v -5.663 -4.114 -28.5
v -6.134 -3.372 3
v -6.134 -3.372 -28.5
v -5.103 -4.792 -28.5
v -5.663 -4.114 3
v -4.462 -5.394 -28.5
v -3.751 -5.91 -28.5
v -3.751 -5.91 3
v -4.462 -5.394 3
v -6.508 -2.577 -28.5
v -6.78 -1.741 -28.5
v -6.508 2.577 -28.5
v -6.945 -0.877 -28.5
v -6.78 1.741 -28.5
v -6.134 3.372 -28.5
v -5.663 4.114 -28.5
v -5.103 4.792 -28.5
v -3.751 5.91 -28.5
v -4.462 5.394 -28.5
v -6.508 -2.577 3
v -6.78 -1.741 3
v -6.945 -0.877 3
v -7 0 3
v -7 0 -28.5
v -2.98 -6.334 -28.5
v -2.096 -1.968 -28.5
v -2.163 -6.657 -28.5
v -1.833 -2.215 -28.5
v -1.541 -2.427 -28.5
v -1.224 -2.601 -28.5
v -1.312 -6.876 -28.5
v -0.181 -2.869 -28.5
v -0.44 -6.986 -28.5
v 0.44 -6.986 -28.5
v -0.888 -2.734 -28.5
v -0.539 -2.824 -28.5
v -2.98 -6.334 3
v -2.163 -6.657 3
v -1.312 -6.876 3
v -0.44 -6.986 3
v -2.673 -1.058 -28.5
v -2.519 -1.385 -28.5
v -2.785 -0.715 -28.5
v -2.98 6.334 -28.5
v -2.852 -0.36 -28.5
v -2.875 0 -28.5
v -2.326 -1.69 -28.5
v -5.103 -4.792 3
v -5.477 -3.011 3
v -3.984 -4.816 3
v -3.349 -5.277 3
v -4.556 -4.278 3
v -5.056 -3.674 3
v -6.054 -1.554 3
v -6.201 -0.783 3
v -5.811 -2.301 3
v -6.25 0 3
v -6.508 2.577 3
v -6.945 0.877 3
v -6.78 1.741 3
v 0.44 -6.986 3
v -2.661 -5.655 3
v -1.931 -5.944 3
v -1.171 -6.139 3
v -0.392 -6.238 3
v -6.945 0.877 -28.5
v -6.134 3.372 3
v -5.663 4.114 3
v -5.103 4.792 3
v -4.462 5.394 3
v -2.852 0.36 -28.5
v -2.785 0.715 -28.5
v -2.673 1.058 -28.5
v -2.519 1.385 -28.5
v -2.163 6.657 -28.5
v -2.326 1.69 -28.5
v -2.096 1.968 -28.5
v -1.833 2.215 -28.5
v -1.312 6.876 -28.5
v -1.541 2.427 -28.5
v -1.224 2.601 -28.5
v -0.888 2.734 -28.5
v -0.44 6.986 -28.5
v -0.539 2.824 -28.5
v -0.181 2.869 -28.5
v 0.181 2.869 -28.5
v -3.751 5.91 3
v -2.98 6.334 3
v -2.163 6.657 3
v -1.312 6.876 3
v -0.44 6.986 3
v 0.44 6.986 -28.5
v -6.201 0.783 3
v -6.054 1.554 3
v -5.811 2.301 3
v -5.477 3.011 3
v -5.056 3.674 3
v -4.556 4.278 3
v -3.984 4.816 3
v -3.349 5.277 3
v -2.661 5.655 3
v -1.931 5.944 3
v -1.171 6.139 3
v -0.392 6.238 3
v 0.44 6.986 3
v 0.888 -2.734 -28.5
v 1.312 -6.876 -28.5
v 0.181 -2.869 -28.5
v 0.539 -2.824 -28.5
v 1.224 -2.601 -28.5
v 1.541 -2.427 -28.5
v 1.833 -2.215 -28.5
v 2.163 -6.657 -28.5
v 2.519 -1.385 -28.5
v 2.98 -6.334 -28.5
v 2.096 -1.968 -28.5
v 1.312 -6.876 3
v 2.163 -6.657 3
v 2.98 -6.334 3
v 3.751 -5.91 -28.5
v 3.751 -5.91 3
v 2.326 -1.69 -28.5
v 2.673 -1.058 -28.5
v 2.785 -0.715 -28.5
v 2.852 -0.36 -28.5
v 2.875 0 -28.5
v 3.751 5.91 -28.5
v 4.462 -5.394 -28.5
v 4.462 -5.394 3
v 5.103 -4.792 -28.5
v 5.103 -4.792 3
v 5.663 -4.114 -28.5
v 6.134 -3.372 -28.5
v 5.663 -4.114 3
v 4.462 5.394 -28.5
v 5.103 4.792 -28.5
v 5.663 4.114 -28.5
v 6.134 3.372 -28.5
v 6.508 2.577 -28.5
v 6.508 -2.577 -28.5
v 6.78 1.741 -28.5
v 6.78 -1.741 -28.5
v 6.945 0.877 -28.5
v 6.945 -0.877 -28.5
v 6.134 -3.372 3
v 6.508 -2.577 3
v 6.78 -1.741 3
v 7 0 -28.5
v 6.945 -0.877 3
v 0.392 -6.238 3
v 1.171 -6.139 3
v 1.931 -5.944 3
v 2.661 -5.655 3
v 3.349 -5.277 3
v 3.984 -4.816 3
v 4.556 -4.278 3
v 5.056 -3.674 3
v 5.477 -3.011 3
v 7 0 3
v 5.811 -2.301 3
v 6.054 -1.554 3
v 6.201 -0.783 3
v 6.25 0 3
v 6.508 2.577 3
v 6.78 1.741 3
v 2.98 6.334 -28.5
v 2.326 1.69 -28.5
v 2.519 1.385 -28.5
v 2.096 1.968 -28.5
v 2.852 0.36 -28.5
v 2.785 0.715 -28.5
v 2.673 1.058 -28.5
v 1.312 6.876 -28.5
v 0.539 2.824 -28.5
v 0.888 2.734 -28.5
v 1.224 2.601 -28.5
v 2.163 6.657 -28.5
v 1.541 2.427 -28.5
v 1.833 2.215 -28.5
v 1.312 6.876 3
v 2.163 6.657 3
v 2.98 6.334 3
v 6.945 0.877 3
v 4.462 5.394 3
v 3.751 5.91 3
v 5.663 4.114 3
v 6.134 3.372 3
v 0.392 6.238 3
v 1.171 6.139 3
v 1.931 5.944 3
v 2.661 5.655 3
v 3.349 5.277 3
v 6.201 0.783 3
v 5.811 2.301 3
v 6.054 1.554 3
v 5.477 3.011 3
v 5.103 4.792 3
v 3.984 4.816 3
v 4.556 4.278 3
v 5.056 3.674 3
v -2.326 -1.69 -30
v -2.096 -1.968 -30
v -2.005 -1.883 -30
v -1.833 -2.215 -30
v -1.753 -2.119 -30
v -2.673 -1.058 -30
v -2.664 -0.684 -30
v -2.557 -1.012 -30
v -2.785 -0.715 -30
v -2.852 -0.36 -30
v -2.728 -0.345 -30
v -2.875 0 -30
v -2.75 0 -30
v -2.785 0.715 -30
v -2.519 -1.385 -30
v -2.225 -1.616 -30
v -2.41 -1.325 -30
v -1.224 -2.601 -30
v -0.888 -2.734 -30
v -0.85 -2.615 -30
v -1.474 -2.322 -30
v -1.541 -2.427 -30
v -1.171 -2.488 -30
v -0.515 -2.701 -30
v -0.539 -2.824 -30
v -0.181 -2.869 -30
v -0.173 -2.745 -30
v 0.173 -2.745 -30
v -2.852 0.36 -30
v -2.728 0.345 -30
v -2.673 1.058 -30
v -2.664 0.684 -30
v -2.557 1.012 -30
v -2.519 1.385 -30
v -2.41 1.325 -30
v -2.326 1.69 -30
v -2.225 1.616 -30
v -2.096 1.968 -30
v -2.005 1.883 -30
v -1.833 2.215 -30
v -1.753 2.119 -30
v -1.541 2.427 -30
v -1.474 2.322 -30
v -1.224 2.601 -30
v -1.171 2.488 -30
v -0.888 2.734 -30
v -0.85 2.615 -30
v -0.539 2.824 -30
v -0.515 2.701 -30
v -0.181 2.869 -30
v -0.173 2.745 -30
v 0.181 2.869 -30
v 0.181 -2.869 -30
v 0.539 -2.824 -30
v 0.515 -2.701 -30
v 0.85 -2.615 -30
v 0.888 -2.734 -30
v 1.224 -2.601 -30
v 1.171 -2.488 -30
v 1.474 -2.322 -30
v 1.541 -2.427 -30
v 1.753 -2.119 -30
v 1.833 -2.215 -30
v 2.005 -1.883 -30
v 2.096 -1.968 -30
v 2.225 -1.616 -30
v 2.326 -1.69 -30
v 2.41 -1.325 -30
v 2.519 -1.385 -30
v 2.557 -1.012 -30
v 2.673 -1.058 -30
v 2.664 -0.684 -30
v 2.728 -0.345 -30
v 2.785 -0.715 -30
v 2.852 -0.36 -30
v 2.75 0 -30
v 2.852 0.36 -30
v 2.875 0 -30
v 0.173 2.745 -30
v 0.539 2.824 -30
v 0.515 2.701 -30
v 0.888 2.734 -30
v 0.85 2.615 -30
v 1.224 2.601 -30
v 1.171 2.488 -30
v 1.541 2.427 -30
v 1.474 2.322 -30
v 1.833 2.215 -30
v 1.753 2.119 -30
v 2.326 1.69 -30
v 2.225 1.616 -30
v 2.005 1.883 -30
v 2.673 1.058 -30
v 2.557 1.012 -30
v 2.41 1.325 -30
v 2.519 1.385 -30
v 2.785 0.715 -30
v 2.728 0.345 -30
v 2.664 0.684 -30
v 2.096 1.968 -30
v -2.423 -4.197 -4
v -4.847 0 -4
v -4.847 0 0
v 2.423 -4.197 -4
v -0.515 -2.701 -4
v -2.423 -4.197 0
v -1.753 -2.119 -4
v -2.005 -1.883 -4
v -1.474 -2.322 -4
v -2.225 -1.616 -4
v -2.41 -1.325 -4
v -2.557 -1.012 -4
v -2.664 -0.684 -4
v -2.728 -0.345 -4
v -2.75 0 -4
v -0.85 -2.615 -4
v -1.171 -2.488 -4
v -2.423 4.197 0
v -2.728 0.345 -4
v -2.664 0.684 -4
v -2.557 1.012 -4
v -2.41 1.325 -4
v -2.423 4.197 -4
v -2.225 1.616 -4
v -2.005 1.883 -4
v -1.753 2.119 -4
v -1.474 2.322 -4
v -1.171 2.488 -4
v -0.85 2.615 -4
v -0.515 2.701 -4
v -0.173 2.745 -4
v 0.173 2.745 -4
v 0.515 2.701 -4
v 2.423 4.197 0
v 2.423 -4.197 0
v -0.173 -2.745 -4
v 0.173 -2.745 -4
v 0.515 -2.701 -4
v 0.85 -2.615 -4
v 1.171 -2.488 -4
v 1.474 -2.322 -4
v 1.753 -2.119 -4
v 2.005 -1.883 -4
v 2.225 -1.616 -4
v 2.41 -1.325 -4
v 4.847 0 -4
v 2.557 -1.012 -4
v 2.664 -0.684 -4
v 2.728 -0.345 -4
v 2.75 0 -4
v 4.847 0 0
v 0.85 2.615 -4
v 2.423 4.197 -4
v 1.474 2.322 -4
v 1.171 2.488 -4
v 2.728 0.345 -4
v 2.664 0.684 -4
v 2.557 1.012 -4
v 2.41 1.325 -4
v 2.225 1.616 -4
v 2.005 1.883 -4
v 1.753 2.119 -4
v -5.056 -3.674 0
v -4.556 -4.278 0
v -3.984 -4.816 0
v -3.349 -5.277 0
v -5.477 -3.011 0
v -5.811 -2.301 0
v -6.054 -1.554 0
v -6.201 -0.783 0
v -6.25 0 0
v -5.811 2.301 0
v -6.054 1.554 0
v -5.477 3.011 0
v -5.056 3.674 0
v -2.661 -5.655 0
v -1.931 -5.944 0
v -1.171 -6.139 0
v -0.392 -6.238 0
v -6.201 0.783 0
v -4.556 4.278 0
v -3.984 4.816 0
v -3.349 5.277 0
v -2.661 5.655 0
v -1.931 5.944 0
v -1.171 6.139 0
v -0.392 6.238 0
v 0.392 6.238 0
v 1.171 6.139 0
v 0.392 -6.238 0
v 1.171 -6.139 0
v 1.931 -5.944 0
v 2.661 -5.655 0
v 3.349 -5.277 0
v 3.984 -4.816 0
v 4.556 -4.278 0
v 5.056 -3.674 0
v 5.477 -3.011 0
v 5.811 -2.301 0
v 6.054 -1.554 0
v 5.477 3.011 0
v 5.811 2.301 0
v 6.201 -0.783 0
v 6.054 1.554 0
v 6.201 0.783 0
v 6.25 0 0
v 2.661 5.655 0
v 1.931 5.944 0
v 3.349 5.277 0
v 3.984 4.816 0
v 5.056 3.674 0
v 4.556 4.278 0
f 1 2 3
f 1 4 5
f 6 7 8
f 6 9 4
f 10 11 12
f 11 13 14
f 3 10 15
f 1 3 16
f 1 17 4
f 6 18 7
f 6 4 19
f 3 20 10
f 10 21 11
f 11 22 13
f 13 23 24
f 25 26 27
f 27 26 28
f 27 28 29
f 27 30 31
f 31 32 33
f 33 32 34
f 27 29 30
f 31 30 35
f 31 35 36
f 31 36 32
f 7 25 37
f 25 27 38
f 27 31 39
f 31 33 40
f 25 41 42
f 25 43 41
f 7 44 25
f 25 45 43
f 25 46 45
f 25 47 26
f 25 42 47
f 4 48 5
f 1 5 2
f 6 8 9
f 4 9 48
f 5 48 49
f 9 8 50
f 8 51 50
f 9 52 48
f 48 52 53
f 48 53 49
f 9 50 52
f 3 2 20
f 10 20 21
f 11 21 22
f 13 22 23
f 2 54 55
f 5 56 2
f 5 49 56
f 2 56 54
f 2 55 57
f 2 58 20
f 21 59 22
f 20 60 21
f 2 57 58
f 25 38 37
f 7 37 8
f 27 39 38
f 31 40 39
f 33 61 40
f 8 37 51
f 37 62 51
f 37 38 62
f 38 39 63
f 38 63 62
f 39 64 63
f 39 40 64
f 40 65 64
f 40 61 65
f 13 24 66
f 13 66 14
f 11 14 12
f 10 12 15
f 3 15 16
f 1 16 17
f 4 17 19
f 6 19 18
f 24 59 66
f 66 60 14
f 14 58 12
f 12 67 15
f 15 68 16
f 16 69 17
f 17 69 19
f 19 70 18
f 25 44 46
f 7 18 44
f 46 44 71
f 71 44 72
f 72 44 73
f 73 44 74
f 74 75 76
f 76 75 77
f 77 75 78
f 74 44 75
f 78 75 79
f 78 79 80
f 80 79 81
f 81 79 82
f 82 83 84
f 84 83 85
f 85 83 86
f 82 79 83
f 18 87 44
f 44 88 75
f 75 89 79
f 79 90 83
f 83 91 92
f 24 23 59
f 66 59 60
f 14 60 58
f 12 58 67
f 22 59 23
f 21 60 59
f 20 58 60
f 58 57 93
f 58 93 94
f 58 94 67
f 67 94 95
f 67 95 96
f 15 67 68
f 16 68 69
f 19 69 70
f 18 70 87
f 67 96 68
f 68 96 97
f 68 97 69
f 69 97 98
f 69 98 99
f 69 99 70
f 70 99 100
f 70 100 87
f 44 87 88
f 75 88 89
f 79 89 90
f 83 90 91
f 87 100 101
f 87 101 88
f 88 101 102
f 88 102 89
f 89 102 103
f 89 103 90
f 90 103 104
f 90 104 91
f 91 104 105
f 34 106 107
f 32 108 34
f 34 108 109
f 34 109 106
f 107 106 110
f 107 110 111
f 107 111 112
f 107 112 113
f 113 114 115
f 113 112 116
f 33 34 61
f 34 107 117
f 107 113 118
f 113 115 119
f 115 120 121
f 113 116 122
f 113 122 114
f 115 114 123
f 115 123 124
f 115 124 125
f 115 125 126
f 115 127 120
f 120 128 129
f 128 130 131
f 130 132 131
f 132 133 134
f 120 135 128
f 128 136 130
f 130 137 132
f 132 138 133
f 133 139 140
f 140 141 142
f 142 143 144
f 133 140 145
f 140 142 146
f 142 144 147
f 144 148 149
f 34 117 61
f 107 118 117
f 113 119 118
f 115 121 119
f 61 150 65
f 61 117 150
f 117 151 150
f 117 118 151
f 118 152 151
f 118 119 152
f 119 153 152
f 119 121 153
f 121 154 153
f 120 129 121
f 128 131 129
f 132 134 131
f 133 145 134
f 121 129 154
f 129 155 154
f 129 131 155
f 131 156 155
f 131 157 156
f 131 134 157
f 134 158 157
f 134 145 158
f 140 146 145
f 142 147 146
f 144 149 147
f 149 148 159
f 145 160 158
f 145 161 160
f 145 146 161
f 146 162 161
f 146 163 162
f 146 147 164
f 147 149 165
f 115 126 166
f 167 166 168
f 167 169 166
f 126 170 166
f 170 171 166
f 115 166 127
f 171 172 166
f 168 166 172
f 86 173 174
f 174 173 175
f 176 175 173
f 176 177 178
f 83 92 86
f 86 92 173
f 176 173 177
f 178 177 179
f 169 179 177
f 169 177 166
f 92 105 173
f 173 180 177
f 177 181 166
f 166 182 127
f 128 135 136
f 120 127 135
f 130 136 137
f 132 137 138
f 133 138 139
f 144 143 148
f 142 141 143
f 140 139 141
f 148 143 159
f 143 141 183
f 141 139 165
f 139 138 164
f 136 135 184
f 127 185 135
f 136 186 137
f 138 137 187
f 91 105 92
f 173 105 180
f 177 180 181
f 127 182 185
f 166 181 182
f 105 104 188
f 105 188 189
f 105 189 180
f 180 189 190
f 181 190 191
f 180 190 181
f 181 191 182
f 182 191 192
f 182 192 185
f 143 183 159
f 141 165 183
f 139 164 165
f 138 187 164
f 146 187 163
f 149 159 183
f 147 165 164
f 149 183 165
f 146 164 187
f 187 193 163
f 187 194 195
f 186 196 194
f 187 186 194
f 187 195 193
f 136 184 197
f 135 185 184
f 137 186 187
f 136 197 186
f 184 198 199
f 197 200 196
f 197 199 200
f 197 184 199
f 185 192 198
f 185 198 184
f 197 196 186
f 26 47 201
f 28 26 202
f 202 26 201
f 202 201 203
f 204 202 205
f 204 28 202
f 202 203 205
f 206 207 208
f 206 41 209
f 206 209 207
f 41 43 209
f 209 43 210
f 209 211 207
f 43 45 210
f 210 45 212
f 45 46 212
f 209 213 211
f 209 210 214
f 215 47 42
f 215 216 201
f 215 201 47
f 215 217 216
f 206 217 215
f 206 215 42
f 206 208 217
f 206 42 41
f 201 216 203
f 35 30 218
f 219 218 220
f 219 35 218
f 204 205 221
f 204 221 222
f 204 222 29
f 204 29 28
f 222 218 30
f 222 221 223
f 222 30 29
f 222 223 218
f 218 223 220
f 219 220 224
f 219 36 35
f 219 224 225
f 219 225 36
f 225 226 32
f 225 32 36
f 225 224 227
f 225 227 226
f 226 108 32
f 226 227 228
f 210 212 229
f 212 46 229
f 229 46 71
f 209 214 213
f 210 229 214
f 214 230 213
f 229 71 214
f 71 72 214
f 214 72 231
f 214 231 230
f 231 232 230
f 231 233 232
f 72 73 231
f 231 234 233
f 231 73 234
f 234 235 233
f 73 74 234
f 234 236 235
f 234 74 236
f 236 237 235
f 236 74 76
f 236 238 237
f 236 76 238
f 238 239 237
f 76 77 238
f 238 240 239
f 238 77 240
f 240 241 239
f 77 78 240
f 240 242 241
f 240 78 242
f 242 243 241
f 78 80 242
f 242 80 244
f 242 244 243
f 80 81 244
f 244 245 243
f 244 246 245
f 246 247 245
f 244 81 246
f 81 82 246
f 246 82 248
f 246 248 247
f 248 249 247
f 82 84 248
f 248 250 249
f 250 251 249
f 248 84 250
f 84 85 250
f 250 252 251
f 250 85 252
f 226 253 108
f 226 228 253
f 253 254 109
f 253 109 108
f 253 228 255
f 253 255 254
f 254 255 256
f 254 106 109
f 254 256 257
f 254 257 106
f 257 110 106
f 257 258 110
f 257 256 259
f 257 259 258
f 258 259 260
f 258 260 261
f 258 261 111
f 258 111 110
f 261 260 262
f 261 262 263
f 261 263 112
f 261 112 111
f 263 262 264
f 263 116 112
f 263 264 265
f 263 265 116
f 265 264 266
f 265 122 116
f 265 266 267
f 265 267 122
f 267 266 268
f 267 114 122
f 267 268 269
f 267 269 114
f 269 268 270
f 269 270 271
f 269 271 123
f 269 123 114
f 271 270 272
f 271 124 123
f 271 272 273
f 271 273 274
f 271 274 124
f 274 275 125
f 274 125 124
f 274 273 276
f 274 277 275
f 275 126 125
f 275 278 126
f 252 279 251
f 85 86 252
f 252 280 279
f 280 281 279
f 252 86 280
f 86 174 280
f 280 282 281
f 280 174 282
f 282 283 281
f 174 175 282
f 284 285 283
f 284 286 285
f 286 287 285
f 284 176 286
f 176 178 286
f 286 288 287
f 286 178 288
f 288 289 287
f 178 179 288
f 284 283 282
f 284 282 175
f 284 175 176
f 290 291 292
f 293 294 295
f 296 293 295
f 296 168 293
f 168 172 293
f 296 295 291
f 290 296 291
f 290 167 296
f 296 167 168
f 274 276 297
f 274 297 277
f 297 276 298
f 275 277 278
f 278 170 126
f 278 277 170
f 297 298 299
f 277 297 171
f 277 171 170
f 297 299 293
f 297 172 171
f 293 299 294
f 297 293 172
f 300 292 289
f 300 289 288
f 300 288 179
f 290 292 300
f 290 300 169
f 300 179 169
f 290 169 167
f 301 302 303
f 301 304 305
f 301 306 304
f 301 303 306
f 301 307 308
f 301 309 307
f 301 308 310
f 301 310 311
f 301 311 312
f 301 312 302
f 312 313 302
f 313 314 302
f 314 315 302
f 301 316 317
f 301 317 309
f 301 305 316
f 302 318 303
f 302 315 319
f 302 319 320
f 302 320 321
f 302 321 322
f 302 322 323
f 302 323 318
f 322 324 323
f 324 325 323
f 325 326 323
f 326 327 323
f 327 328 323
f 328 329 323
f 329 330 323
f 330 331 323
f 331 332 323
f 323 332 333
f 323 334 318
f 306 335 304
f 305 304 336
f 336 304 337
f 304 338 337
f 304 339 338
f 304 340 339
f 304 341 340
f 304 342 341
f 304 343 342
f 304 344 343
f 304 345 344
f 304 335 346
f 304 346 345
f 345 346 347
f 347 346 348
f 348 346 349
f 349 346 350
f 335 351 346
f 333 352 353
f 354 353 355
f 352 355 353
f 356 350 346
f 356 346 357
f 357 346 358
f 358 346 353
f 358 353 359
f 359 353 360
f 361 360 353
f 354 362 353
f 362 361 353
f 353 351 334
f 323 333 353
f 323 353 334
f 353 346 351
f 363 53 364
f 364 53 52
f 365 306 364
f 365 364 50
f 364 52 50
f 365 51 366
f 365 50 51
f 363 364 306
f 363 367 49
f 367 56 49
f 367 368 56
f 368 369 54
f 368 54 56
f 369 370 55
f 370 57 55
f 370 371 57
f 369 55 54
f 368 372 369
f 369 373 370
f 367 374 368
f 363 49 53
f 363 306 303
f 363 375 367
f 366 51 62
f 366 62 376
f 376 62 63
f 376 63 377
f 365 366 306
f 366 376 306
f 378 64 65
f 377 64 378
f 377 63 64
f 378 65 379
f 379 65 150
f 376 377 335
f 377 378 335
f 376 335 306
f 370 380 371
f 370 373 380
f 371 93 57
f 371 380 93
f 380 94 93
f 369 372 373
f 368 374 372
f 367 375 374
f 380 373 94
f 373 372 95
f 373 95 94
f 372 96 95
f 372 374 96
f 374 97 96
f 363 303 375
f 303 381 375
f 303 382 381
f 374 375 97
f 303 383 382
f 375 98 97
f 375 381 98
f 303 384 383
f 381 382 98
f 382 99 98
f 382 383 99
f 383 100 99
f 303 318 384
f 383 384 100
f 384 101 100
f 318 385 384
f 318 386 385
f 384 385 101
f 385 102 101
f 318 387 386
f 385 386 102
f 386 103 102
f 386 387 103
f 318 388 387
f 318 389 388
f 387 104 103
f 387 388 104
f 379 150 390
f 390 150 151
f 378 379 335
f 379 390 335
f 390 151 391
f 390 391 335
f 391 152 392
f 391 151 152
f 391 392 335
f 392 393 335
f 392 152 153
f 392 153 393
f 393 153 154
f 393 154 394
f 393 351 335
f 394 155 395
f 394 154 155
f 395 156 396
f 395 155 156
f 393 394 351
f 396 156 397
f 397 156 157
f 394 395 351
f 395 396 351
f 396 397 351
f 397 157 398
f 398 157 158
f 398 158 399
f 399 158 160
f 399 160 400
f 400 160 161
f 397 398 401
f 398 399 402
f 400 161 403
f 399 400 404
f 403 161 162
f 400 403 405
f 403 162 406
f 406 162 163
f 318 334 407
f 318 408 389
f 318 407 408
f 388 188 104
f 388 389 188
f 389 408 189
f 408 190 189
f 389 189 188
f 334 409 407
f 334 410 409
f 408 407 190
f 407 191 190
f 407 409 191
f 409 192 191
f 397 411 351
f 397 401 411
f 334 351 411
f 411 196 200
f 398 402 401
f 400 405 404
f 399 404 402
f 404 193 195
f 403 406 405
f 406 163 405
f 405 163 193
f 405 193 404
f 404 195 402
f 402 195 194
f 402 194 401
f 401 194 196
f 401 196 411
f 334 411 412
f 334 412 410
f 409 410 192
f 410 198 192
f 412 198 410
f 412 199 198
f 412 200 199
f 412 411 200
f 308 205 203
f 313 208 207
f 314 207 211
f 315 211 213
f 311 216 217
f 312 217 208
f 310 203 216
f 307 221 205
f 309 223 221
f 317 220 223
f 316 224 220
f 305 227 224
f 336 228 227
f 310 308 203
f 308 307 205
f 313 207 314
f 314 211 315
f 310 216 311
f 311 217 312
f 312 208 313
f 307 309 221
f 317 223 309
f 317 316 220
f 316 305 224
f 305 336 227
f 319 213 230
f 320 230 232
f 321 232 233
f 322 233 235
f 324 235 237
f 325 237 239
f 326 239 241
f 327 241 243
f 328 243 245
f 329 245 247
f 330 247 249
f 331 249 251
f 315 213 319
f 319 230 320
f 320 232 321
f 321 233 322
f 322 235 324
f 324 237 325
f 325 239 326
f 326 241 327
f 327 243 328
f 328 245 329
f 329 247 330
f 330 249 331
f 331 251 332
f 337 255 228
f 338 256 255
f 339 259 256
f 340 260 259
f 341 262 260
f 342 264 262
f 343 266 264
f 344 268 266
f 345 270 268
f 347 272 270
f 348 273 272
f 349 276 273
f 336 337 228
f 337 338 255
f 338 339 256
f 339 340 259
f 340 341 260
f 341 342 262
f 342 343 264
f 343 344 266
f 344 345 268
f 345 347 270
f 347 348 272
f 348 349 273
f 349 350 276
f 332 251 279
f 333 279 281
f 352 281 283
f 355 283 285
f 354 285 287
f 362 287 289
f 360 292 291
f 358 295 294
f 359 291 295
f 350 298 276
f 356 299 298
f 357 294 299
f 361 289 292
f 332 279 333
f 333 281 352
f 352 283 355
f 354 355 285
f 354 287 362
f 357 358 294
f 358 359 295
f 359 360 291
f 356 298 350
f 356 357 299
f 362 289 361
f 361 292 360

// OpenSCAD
$fn = 50;

difference() {
	union() {
		translate(v = [0, 0, -28.5]) {
			cylinder(h = 31.5, r = 7.0);
		}
		#translate(v = [0, 0, -30.0]) {
			cylinder(h = 30, r = 2.875);
		}
	}
	union() {
		translate(v = [0, 0, 0]) {
			rotate(a = [0, 0, 0]) {
				difference() {
					union() {
						translate(v = [0, 0, -4]) {
							linear_extrude(height = 4) {
								polygon(points = [[4.8468, 0.0], [2.4234000000000004, 4.197451927062417], [-2.423399999999999, 4.197451927062417], [-4.8468, 5.935618106107392e-16], [-2.423400000000002, -4.197451927062416], [2.423399999999997, -4.197451927062419]]);
							}
						}
					}
					union();
				}
			}
		}
		#cylinder(h = 3, r = 6.25);
		#translate(v = [0, 0, -100.0]) {
			cylinder(h = 200, r = 2.75);
		}
	}
}
